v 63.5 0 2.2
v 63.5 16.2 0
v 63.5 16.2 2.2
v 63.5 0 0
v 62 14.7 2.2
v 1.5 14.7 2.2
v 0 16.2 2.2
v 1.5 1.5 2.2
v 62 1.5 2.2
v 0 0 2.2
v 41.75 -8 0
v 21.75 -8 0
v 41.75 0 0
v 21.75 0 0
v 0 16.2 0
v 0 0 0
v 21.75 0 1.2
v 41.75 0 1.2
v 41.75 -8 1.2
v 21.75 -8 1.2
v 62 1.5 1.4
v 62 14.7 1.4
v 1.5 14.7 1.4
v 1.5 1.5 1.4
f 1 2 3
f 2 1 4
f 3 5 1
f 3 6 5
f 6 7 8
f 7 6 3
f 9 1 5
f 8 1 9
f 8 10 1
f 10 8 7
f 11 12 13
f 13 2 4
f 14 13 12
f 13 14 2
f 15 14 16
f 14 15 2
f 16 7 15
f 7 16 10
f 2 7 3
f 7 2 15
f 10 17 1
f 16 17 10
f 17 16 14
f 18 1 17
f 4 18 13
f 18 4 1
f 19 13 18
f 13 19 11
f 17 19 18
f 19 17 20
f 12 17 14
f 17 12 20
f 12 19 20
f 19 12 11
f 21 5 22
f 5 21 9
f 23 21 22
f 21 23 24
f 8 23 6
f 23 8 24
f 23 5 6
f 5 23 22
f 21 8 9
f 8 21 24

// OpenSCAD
// Holder for a printed 60 x 12.7 mm plate (tools in SOFTWARE/alpr/tools/generate_plates.py).
// Keeps the plate flat and perpendicular - important for ALPR. Glue the tab to the toy car.
plate_w = 60.5; plate_h = 13.2; depth = 0.8; frame = 1.5; tab = 8; $fn = 24;

module drzac_tablice() {
    difference() {
        union() {
            cube([plate_w + 2 * frame, plate_h + 2 * frame, 2.2]);
            translate([(plate_w + 2 * frame) / 2 - 10, -tab, 0]) cube([20, tab + 1, 1.2]);   // glue tab
        }
        translate([frame, frame, 2.2 - depth]) cube([plate_w, plate_h, depth + 1]);
    }
}

drzac_tablice();
